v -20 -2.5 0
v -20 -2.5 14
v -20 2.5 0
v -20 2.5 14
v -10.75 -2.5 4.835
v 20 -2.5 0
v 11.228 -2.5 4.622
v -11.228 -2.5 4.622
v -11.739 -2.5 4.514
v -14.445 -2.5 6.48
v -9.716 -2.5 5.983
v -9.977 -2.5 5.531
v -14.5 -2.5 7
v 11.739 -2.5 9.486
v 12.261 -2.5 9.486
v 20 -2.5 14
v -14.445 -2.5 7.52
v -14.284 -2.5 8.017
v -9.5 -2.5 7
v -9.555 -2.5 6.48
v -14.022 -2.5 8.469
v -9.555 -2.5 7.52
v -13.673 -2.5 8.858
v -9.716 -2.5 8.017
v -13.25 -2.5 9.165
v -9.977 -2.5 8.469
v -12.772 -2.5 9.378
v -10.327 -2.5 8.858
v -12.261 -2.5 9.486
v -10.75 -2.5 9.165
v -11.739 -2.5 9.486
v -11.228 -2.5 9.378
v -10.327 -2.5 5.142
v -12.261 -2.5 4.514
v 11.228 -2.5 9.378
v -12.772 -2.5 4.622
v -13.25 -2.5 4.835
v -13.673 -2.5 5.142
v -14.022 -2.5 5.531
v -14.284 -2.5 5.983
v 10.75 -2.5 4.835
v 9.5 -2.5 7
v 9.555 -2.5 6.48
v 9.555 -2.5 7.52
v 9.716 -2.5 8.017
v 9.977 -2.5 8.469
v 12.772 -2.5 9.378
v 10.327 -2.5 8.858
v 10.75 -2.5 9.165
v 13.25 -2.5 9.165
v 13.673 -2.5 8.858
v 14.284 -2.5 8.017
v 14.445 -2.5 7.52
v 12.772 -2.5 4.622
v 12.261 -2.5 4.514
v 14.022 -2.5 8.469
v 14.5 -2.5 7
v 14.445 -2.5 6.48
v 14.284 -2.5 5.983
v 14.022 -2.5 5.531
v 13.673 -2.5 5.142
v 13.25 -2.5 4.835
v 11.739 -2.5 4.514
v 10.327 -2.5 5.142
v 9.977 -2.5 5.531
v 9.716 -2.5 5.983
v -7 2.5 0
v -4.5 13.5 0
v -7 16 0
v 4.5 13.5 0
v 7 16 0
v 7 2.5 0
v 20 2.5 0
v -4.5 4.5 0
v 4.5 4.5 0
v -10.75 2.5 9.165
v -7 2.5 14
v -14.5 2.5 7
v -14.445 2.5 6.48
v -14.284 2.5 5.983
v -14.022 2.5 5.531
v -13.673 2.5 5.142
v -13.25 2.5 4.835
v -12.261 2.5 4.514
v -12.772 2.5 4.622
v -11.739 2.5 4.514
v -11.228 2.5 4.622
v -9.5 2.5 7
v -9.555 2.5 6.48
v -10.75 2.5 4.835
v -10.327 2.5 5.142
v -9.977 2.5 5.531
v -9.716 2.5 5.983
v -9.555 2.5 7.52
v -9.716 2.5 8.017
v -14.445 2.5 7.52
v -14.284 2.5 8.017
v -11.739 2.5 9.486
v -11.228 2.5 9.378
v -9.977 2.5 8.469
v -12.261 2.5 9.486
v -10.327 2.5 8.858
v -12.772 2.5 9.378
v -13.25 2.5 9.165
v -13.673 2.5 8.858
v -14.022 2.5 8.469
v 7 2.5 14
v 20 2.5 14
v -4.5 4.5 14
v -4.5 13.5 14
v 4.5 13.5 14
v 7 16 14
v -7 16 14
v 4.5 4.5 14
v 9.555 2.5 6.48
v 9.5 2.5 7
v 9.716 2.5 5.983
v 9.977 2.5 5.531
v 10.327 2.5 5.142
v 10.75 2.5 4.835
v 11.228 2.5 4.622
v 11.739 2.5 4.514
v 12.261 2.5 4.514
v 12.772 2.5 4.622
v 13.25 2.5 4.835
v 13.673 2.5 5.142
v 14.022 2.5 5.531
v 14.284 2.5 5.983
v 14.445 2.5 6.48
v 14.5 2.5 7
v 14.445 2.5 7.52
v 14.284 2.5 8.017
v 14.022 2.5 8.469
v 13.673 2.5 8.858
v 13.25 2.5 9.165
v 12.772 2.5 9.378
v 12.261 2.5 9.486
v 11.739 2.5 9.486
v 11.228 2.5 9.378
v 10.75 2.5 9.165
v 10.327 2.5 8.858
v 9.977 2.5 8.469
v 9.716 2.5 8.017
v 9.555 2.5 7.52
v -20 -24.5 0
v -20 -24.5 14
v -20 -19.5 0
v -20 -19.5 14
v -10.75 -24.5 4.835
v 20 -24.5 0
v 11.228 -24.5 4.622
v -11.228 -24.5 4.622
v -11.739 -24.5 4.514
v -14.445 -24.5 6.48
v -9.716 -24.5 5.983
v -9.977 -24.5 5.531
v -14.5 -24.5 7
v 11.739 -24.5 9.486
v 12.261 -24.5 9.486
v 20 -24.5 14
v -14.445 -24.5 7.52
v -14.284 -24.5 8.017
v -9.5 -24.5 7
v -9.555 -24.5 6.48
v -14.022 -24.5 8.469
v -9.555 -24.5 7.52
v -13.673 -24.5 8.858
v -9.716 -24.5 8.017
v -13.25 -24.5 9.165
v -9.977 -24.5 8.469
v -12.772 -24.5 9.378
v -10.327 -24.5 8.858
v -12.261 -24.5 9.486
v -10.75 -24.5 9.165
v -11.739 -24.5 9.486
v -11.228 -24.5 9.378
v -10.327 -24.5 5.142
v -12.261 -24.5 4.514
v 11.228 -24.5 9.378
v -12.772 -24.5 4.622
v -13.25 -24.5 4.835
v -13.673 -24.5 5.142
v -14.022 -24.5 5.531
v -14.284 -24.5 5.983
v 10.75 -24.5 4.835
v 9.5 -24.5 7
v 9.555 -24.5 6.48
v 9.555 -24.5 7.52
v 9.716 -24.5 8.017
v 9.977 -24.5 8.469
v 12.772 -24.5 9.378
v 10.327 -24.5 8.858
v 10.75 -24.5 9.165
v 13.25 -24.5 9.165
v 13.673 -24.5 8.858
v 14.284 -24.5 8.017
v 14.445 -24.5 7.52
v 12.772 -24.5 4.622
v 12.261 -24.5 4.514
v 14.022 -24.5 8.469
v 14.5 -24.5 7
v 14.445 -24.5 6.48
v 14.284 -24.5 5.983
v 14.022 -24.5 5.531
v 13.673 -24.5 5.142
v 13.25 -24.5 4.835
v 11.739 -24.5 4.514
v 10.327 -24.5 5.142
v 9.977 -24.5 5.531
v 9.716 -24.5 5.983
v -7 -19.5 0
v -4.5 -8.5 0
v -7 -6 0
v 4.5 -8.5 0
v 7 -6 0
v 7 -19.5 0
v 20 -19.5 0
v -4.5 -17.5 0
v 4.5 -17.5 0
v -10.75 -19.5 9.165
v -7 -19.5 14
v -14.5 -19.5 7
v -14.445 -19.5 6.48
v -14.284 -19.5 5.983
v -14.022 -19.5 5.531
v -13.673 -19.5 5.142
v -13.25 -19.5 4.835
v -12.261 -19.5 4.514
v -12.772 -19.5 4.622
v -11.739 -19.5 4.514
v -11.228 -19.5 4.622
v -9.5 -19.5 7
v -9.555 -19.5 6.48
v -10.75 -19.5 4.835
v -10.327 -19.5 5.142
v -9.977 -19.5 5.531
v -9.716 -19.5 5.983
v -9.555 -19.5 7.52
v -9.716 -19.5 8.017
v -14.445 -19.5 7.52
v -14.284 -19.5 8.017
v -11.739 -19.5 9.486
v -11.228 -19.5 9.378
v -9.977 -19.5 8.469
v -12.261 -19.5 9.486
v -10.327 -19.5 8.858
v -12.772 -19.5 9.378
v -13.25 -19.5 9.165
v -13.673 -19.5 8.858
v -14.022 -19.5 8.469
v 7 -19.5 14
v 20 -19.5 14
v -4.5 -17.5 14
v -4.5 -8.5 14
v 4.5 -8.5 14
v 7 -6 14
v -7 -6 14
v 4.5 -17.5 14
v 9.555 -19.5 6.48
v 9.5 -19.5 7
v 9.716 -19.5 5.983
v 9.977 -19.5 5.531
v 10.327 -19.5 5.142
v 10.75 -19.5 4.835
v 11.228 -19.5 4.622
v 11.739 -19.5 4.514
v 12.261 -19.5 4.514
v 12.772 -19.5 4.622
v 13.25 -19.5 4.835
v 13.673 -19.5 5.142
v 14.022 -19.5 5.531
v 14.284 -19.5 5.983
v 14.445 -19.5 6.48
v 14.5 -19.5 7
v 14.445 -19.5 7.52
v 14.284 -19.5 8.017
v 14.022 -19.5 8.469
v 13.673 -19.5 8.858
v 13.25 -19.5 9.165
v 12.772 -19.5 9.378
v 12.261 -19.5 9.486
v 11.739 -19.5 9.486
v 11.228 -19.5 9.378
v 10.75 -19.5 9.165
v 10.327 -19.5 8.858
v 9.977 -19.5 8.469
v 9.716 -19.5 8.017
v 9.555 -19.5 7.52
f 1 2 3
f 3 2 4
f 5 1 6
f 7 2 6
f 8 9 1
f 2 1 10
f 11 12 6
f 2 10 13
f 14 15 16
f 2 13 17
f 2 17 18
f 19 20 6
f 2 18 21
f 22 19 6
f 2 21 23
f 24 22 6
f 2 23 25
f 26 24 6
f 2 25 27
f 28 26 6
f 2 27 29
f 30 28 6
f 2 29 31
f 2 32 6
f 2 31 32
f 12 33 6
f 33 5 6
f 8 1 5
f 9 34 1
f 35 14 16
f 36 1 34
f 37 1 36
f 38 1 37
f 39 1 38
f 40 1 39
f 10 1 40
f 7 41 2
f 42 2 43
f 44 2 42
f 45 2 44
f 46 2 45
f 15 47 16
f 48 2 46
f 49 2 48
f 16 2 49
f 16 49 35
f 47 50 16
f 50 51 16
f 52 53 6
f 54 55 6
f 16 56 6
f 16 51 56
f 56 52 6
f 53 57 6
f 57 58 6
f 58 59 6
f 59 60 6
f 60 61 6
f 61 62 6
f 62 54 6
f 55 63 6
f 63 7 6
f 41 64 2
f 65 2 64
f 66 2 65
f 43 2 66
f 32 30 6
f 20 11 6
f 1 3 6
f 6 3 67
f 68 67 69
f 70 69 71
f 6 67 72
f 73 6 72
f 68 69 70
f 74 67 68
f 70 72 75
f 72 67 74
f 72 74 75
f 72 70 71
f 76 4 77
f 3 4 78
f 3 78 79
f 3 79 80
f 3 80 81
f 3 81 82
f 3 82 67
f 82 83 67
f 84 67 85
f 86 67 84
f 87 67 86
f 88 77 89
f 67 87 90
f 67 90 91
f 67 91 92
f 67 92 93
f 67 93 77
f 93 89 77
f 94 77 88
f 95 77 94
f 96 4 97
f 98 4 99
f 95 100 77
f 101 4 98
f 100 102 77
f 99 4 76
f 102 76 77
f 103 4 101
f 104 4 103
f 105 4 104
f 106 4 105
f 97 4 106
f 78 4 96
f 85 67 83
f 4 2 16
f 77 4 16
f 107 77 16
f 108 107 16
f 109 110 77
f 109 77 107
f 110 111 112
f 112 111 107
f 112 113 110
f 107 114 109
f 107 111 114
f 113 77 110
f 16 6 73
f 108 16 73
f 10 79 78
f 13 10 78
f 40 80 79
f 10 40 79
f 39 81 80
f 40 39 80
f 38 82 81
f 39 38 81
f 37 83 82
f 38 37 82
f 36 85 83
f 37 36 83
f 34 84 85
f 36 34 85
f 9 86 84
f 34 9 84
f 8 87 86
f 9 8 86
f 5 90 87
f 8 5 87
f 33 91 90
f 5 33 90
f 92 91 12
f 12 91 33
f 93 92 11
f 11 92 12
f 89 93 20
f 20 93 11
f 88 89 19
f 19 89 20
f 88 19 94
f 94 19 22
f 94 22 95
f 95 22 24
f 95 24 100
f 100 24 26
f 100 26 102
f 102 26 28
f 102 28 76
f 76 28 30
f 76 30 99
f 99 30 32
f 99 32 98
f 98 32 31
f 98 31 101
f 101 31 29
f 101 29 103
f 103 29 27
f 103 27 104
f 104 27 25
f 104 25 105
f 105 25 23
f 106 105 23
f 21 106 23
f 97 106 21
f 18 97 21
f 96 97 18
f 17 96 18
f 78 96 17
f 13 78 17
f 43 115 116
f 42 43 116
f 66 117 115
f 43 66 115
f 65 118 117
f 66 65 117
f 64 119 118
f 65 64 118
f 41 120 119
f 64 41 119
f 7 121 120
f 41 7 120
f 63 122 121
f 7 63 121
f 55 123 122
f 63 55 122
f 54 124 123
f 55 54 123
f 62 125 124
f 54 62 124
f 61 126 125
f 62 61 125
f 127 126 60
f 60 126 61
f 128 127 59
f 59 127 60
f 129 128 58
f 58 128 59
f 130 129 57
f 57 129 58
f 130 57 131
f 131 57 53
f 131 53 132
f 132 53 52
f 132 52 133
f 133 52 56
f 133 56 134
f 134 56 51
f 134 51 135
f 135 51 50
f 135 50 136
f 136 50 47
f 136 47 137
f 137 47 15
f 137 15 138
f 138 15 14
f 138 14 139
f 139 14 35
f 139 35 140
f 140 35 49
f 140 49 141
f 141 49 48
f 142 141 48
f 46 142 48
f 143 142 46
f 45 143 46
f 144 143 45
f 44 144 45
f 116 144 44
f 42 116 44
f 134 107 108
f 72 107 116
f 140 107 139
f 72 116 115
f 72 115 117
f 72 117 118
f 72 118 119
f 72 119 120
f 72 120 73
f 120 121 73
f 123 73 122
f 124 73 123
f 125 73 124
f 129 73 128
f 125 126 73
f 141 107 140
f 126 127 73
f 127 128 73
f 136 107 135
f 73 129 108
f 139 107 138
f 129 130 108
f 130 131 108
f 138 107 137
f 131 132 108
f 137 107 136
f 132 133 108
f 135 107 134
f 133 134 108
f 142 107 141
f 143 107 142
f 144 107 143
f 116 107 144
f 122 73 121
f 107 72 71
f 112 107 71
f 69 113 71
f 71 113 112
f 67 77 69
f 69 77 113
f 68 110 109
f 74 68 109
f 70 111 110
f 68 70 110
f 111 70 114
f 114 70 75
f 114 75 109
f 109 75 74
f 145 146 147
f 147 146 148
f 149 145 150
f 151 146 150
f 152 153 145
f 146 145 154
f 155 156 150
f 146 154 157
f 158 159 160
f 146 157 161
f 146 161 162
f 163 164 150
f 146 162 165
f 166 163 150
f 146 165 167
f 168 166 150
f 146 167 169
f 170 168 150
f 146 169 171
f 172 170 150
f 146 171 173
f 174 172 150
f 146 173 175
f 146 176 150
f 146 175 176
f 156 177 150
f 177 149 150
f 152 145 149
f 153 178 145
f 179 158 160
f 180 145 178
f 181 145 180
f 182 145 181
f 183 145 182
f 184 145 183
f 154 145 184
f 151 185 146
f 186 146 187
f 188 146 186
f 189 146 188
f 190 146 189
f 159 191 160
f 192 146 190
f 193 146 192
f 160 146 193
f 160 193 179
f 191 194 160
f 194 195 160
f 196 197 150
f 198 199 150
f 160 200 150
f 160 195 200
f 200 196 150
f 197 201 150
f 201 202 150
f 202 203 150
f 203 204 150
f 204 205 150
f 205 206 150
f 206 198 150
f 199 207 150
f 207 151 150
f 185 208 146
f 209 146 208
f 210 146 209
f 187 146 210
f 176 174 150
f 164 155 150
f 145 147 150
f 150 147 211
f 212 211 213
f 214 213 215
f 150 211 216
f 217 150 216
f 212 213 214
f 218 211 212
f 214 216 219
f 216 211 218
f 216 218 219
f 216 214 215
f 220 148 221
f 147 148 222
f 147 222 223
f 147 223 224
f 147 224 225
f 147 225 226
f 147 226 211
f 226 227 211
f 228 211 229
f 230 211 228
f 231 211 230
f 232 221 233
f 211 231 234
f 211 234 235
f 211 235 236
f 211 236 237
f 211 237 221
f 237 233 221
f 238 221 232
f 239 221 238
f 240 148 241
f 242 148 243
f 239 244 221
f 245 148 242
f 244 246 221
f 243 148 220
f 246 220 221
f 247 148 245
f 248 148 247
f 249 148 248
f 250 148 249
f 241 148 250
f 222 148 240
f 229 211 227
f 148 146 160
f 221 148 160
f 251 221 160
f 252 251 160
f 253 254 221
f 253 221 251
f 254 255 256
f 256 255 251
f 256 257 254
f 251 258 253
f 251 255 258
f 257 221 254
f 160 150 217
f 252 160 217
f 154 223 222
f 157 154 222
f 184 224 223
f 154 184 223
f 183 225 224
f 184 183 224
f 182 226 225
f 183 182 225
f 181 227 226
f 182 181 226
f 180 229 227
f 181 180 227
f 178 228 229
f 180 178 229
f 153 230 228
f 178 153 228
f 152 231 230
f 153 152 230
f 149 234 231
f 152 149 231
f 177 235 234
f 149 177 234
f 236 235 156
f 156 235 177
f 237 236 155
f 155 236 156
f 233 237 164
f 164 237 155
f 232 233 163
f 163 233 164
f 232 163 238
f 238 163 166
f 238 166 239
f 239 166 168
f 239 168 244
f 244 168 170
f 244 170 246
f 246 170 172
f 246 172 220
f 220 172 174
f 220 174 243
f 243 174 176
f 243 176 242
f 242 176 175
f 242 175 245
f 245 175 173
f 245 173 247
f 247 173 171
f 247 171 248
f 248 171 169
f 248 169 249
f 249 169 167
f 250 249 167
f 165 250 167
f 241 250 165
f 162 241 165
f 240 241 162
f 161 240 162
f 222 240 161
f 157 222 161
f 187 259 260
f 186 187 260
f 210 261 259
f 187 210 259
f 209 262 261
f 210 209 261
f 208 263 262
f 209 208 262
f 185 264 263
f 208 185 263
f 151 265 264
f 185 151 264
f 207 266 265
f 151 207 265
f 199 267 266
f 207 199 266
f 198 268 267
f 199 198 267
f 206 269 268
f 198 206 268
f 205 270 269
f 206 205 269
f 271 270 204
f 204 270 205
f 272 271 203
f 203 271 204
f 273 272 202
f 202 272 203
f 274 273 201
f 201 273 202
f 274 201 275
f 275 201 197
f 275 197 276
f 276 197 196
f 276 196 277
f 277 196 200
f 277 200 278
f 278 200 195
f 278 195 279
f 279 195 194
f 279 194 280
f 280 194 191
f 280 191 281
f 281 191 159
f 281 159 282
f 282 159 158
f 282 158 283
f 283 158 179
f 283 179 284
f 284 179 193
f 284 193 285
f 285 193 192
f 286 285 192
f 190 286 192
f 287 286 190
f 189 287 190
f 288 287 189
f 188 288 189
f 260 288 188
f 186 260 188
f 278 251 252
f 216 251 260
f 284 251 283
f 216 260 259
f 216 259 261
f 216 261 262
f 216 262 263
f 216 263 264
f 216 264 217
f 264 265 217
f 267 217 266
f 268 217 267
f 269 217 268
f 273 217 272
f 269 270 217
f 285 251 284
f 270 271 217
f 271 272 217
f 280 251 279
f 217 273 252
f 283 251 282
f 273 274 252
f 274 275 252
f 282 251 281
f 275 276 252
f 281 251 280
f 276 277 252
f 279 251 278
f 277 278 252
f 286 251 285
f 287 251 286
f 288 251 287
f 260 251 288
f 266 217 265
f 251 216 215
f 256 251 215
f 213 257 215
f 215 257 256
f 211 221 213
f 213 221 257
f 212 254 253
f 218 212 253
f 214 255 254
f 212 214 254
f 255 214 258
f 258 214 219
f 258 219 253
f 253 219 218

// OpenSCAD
module bushing_holder(){
	translate(v = [0,7+2,0])difference(){
translate(v = [0,0,7]) #cube(size = [14,14,14], center = true);
translate(v = [0,0,7]) cube(size = [9,9,17], center = true);
}
difference(){
translate(v = [0,0,7]) cube(size = [40,5,14], center = true);
translate(v = [12,3,7]) rotate(a=[90,0,0]) cylinder(h = 80, r=2.5, $fn=30);
translate(v = [-12,3,7]) rotate(a=[90,0,0]) cylinder(h = 80, r=2.5, $fn=30);
}
}

bushing_holder();
translate(v = [0,-22,0])bushing_holder();

/*translate(v = [0,18,7]) rotate([0,90,90]) {
translate(v = [0,0,2.5])difference(){
translate(v = [0,0,7+2]) cube(size = [14,14,14], center = true);
translate(v = [0,0,7+2]) cube(size = [17,9,9], center = true);
}
difference(){
translate(v = [0,0,2.5]) cube(size = [14,55,5], center = true);

translate(v = [2,16,2.5]) cube(size = [14,2,7], center = true);
translate(v = [-2,11,2.5]) cube(size = [14,2,7], center = true);


translate(v = [-2,-16,2.5]) cube(size = [14,2,7], center = true);
translate(v = [2,-11,2.5]) cube(size = [14,2,7], center = true);

translate(v = [0,22,-1])  cylinder(h = 80, r=2.5, $fn=30);
translate(v = [0,-22,-1])  cylinder(h = 80, r=2.5, $fn=30);
}
}*/
